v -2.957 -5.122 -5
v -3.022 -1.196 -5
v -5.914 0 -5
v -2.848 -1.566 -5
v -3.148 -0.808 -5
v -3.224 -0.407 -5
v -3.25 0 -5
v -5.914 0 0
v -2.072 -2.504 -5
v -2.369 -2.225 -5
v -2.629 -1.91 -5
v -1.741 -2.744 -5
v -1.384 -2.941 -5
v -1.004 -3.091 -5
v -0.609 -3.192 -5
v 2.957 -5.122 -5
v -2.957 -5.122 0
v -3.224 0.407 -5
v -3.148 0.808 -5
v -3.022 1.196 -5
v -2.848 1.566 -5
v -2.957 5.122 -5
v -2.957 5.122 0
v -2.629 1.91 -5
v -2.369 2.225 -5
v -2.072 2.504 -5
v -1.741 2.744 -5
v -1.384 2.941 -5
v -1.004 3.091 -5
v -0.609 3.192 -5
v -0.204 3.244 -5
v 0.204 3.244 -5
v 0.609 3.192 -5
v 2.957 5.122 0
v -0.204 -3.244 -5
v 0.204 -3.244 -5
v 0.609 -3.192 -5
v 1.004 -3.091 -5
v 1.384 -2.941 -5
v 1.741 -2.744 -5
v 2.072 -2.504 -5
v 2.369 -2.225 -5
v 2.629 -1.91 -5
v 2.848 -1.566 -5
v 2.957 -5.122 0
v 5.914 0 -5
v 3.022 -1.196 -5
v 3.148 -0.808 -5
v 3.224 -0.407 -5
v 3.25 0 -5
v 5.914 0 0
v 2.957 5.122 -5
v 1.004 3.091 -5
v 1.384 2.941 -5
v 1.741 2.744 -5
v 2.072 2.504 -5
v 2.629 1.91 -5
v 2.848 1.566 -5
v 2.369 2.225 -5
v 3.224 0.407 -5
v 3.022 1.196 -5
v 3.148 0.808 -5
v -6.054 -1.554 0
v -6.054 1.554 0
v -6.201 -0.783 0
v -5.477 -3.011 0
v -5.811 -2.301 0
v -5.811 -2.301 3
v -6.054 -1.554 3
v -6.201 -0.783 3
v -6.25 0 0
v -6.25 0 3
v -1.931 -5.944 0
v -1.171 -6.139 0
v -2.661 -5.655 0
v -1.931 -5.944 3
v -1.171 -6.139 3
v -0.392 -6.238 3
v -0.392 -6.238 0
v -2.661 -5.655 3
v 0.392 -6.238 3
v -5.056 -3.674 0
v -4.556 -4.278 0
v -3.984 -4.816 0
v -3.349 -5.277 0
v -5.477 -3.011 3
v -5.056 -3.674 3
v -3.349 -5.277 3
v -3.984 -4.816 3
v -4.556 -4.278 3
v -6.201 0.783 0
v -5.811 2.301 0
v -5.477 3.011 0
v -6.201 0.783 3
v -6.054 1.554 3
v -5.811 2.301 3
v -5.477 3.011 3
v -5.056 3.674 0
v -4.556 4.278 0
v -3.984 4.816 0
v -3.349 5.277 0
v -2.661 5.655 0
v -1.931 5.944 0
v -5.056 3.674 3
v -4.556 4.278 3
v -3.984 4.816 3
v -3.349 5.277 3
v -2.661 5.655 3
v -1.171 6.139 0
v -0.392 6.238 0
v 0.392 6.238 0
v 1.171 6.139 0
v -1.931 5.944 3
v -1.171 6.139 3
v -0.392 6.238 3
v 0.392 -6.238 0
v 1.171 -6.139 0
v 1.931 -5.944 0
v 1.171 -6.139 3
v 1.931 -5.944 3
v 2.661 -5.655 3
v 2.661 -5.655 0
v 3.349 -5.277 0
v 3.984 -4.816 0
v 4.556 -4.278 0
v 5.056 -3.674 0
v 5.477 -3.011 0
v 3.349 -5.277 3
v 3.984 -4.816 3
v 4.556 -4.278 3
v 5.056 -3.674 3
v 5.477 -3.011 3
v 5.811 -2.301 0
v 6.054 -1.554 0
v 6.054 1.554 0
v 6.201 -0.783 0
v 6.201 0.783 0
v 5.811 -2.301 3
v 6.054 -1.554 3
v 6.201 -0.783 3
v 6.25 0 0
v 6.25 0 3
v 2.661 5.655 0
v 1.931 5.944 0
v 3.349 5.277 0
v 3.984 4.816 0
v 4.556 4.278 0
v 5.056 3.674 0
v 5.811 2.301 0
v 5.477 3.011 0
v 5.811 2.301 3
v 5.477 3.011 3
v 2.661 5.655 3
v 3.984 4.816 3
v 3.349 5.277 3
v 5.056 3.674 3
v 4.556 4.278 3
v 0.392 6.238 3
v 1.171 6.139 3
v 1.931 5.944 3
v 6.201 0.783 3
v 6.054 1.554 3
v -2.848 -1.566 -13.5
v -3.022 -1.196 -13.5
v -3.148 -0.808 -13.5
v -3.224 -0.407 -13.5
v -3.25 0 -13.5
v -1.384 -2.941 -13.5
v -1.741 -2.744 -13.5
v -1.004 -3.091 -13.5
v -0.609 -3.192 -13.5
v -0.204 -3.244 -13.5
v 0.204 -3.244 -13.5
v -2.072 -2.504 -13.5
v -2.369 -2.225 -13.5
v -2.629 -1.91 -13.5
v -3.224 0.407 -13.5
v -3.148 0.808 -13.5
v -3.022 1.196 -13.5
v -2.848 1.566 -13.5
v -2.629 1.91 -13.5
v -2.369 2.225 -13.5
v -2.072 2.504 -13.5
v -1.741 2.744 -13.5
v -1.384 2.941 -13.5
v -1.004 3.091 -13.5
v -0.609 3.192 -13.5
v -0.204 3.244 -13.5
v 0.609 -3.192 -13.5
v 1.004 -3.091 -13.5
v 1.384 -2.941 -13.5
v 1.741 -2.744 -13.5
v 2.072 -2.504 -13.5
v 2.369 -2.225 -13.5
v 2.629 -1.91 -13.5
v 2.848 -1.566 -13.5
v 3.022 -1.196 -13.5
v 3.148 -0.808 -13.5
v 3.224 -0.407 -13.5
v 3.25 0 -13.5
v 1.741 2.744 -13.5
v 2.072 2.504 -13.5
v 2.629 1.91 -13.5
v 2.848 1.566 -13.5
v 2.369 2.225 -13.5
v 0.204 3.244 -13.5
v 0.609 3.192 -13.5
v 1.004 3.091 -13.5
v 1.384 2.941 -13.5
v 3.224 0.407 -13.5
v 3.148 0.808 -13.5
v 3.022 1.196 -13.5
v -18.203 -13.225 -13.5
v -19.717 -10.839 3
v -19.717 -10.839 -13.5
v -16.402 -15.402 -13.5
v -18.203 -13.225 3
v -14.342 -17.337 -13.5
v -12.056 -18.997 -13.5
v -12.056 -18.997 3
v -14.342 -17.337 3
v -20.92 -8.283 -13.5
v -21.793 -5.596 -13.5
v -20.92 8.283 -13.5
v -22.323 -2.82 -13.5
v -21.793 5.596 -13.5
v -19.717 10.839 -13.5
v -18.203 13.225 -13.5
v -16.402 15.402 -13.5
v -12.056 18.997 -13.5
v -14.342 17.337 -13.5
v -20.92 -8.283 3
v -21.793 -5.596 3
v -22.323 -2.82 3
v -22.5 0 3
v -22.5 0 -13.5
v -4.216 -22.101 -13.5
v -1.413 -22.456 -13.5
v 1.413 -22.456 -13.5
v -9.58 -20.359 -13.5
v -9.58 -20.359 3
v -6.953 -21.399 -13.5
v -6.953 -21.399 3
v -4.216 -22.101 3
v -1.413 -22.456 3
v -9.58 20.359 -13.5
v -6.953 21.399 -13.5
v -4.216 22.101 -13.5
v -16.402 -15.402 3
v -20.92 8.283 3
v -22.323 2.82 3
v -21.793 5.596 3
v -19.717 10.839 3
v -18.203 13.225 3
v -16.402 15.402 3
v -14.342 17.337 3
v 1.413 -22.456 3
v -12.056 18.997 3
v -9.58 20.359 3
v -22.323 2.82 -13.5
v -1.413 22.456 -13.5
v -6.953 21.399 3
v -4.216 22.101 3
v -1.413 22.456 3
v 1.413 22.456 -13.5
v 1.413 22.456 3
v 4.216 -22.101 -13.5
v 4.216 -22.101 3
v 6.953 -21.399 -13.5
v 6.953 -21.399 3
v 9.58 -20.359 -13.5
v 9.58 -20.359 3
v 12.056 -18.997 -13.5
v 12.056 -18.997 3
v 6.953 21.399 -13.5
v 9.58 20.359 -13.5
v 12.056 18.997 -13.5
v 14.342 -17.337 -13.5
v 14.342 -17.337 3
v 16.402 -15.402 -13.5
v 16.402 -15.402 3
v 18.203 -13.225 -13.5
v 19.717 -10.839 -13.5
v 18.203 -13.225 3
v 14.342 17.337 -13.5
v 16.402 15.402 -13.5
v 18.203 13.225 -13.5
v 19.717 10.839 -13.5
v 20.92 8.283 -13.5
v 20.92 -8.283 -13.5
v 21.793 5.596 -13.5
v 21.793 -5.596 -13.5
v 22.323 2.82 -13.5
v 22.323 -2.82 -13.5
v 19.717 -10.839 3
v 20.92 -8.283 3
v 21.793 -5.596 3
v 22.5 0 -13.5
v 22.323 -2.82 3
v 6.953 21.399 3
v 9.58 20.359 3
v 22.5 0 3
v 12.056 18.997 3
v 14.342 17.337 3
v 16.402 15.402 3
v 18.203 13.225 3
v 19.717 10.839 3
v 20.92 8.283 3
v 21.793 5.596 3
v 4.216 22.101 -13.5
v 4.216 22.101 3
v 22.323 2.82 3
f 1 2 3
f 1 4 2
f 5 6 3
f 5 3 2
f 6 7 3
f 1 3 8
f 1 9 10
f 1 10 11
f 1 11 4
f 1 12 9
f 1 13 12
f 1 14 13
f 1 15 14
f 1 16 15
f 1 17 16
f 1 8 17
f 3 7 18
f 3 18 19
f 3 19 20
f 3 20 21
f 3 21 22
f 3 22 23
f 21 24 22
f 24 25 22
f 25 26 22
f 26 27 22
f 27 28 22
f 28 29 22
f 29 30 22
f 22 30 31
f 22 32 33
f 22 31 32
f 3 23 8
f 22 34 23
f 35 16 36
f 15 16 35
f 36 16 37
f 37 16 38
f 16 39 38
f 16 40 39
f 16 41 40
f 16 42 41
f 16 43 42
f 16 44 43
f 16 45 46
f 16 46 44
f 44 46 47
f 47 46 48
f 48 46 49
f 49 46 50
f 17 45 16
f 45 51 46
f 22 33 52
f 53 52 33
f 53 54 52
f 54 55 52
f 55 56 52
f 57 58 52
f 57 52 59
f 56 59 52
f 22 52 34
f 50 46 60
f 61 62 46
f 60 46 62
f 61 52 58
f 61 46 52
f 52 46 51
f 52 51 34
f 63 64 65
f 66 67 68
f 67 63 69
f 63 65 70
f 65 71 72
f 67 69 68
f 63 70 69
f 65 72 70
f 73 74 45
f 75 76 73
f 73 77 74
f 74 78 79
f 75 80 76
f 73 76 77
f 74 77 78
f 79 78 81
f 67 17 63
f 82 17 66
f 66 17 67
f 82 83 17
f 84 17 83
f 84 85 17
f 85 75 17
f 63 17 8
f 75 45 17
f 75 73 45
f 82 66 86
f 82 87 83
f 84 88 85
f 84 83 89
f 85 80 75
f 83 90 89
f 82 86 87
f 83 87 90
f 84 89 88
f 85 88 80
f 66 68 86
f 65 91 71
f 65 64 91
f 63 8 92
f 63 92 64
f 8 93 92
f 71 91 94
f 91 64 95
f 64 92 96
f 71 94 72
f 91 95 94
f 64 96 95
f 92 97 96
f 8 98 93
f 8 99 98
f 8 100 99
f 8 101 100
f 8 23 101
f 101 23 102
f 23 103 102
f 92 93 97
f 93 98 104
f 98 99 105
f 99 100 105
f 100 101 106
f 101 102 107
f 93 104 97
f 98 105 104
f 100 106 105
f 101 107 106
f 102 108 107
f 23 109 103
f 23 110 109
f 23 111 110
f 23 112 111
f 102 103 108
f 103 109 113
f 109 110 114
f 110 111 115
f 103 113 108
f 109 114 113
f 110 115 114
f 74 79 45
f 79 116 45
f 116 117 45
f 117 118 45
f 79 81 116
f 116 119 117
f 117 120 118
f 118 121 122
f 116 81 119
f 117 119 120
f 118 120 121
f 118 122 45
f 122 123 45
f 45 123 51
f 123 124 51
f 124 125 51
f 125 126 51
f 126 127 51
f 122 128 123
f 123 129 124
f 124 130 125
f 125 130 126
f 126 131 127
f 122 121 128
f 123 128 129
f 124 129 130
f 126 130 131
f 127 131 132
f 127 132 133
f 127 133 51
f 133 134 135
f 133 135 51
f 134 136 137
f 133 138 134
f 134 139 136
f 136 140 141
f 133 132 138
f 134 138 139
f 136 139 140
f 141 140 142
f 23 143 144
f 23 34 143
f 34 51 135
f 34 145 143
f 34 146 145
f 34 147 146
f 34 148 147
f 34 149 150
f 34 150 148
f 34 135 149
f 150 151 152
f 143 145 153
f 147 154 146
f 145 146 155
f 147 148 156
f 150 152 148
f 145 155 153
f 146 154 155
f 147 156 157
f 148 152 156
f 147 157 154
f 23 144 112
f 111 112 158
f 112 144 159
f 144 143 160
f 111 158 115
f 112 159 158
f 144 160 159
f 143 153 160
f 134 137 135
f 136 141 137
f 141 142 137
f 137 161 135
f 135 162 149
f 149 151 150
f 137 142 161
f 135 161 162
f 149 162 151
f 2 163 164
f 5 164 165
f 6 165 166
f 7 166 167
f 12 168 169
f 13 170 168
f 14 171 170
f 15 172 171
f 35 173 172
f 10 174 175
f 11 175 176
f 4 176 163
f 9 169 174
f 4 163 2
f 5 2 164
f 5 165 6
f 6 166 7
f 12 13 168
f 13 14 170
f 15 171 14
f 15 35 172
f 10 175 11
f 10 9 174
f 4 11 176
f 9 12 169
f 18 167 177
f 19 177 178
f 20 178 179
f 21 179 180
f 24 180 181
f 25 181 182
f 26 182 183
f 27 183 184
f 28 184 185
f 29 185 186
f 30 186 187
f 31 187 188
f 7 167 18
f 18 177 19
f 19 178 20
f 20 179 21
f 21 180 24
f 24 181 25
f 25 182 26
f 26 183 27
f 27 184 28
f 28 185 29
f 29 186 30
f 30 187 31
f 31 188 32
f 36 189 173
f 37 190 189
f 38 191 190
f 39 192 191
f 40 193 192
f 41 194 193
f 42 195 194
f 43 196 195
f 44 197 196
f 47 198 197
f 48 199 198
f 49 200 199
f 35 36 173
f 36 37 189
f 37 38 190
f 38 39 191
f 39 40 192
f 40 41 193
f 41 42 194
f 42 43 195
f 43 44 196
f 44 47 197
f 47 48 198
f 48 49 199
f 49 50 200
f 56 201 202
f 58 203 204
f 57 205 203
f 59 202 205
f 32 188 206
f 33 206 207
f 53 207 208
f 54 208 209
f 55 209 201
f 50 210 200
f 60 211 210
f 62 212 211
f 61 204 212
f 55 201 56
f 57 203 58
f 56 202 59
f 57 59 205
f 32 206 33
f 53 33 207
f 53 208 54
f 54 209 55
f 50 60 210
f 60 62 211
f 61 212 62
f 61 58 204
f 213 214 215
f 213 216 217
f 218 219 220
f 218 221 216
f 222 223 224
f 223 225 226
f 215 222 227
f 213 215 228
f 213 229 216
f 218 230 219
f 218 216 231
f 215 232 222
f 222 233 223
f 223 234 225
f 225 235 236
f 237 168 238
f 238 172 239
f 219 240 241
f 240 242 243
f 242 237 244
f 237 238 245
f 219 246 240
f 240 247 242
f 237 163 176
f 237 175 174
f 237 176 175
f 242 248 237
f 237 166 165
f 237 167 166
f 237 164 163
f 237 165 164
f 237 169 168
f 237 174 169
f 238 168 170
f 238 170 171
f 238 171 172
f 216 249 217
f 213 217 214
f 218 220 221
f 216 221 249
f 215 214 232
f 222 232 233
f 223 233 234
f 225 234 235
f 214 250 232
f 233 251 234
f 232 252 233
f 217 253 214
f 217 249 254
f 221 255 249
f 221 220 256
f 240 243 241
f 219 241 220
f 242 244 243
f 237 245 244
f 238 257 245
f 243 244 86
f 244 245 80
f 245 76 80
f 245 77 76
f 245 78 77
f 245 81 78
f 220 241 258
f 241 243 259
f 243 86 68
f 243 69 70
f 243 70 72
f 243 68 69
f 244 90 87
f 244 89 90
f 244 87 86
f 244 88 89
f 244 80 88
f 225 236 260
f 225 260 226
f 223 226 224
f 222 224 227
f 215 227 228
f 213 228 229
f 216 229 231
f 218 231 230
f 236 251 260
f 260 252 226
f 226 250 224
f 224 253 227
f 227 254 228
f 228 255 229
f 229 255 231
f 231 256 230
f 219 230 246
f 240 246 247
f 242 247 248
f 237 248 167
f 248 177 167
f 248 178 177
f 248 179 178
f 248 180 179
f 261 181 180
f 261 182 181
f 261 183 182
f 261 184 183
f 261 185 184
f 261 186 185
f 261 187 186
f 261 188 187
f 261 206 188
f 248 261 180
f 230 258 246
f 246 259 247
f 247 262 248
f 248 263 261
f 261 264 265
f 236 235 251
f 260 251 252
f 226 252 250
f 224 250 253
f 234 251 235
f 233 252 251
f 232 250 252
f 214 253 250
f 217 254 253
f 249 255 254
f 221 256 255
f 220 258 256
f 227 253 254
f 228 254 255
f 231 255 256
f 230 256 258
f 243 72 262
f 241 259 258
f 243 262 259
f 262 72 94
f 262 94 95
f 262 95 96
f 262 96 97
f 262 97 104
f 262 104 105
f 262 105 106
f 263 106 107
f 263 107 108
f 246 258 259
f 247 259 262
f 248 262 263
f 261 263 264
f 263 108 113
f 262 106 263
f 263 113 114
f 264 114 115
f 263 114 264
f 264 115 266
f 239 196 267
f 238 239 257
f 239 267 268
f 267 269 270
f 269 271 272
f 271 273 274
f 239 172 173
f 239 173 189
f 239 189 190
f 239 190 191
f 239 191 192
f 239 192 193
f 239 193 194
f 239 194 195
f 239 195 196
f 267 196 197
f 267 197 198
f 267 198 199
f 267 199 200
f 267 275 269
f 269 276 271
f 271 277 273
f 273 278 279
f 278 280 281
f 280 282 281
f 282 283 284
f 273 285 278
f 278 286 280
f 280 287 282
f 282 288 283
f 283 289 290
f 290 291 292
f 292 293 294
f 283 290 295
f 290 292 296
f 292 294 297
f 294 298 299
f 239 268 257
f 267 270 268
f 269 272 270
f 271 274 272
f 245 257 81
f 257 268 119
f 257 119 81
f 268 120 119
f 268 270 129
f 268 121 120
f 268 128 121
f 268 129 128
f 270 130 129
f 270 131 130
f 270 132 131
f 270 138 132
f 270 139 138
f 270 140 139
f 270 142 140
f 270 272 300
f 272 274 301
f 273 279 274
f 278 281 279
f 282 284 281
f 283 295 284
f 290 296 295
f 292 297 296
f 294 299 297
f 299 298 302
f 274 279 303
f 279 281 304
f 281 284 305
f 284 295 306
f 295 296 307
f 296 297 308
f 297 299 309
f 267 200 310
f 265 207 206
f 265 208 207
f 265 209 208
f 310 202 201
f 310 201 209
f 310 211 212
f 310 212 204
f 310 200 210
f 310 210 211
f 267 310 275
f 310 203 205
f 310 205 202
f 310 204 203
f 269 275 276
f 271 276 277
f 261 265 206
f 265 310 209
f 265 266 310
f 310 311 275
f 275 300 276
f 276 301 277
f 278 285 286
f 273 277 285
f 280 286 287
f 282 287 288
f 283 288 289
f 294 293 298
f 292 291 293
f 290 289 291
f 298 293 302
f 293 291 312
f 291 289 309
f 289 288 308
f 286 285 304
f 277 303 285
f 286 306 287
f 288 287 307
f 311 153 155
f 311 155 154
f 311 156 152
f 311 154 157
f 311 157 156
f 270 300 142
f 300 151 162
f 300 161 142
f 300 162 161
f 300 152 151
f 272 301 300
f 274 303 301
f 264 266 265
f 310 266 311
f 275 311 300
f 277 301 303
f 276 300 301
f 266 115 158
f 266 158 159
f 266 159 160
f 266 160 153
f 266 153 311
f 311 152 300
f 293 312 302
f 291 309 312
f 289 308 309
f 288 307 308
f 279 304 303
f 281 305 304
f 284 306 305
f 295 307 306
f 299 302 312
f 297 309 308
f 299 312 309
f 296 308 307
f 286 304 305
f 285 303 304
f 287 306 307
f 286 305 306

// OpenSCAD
$fn = 50;

difference() {
	union() {
		translate(v = [0, 0, -13.5]) {
			cylinder(h = 16.5, r = 22.5);
		}
	}
	union() {
		translate(v = [0, 0, 0]) {
			rotate(a = [0, 0, 0]) {
				difference() {
					union() {
						translate(v = [0, 0, -5]) {
							linear_extrude(height = 5) {
								polygon(points = [[5.914249999999999, 0.0], [2.957125, 5.1218907443321156], [-2.9571249999999982, 5.1218907443321156], [-5.914249999999999, 7.242867331857232e-16], [-2.9571250000000022, -5.121890744332115], [2.9571249999999956, -5.121890744332118]]);
							}
						}
					}
					union();
				}
			}
		}
		#cylinder(h = 3, r = 6.25);
		#translate(v = [0, 0, -100.0]) {
			cylinder(h = 200, r = 3.25);
		}
	}
}
